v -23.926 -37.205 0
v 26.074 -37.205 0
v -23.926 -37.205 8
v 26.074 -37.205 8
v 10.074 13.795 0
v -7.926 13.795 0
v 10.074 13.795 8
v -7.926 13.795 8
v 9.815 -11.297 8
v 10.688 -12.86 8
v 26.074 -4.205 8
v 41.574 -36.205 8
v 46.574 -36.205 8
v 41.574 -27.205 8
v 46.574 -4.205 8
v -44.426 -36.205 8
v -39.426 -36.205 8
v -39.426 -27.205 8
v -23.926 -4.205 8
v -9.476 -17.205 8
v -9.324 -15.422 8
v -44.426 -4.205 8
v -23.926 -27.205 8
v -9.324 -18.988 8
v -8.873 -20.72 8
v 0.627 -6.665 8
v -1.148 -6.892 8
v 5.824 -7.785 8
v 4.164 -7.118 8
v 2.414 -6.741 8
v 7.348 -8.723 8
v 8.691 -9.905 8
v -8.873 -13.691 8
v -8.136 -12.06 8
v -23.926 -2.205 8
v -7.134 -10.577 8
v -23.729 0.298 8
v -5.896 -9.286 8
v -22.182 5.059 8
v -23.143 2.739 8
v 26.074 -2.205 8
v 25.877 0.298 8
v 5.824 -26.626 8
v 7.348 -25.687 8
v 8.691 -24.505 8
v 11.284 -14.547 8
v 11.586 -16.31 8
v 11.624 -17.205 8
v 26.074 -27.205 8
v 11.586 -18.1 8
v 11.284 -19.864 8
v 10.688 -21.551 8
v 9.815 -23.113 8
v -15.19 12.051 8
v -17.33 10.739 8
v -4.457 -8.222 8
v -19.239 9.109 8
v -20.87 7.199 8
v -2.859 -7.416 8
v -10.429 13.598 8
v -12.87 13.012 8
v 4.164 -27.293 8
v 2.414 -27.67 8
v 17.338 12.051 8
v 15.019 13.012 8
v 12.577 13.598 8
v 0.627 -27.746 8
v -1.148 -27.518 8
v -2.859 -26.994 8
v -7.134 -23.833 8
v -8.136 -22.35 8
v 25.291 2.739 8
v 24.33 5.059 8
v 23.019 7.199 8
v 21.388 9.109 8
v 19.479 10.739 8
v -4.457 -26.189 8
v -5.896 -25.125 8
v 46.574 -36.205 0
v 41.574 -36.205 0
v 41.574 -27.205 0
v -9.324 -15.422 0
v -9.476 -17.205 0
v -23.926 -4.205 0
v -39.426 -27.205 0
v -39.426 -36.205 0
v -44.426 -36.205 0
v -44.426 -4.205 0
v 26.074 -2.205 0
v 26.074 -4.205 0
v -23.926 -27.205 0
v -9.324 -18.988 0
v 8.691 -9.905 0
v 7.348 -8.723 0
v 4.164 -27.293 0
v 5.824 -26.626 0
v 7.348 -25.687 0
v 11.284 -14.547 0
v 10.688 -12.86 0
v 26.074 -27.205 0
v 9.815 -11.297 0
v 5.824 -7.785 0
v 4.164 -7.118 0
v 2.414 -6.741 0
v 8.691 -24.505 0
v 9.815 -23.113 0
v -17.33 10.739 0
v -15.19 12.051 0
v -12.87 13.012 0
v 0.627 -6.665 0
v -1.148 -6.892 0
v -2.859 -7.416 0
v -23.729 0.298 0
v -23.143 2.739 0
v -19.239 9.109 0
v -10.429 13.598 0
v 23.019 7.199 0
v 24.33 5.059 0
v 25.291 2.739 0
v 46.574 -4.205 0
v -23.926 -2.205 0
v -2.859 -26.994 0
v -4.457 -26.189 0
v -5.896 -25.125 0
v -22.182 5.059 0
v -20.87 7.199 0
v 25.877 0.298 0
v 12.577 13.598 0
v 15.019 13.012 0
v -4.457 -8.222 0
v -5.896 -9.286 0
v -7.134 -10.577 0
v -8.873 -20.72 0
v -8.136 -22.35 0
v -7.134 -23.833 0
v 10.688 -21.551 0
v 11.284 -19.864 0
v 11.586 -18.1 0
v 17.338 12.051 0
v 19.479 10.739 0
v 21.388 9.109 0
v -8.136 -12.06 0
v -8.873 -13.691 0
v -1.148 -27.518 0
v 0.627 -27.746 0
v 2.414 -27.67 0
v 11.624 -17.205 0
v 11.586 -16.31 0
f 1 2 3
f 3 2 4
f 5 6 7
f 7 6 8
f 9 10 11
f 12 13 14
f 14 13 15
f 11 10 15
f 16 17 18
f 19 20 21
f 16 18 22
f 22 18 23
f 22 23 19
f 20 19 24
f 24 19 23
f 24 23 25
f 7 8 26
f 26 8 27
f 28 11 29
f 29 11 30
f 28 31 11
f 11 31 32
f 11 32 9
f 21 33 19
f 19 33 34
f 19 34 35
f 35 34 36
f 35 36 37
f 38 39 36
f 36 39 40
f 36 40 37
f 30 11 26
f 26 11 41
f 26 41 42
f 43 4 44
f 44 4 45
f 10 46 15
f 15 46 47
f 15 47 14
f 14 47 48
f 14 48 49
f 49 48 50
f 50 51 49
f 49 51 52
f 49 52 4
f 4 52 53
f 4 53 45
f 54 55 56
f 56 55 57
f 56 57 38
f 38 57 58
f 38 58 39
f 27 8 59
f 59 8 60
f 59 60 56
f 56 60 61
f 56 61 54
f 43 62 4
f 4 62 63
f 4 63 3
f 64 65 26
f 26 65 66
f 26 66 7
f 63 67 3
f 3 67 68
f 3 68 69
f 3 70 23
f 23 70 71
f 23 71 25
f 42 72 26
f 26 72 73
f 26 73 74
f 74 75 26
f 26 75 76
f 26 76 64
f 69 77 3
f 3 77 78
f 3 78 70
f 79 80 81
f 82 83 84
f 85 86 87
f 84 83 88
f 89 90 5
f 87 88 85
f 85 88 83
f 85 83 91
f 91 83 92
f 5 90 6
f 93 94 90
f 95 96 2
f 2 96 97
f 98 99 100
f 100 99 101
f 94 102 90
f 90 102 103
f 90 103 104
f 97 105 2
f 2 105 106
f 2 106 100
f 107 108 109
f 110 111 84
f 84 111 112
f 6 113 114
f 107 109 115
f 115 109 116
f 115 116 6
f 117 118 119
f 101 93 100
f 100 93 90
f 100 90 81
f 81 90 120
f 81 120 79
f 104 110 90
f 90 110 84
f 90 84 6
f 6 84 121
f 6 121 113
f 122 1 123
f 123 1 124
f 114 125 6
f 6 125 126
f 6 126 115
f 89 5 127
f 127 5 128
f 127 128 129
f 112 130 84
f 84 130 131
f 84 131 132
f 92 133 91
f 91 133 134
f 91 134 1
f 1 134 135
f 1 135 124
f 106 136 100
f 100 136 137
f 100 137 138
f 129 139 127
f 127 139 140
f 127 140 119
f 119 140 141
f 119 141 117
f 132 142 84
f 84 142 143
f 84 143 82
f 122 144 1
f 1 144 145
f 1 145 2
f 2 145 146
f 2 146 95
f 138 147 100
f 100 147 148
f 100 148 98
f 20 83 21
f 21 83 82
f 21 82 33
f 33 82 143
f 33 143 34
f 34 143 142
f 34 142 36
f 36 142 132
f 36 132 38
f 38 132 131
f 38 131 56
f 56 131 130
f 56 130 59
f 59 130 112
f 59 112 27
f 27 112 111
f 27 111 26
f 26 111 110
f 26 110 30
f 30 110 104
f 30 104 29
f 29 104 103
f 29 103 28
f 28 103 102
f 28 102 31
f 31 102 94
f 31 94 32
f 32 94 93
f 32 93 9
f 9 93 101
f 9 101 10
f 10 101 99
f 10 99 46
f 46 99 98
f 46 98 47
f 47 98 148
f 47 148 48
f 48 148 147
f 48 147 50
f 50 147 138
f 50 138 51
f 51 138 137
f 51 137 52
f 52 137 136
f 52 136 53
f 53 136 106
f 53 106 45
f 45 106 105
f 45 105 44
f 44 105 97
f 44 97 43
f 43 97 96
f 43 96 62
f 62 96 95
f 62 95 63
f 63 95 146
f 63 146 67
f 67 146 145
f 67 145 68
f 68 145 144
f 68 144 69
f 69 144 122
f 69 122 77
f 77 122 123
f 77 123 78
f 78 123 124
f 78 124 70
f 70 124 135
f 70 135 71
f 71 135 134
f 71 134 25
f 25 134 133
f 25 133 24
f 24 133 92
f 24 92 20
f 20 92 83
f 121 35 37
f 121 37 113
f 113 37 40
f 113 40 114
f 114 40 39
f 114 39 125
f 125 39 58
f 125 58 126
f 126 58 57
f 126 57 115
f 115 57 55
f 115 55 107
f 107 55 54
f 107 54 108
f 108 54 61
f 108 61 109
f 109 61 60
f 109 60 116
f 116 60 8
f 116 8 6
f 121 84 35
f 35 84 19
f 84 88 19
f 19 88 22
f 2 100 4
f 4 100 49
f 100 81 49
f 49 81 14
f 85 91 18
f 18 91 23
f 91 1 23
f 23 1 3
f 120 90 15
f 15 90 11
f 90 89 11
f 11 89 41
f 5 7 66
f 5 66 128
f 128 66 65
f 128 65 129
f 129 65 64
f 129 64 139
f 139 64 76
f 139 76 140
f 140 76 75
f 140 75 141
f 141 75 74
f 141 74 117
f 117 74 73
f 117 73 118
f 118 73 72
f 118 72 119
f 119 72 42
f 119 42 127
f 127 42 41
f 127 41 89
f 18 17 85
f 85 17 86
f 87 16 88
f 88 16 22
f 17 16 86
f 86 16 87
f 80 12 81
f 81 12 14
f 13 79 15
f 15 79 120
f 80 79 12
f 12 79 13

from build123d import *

# Parameters (mm, degrees)
BOSS_EXTRUDE1_DEPTH = 8
SKETCH3_W           = 10
SKETCH3_H           = 10
CUT_EXTRUDE1_DEPTH  = 53.436444721
SKETCH5_W           = 5.5
SKETCH5_H           = 8
BOSS_EXTRUDE2_DEPTH = 23
SKETCH5_3_W         = 5
SKETCH5_3_H         = 8
BOSS_EXTRUDE3_DEPTH = 32
SKETCH5_5_W         = 5
SKETCH5_5_H         = 8
BOSS_EXTRUDE4_DEPTH = 32
SKETCH5_6_W         = 5.5
SKETCH5_6_H         = 8
BOSS_EXTRUDE5_DEPTH = 23


with BuildPart() as part:
    # Sketch2 → Boss-Extrude1 (new body)
    with BuildSketch(Plane.XY):
        Polygon((36.074313409, 13.794830372), (-33.925686591, 13.794830372), (-33.925686591, -37.205169628), (1.074313409, -37.205169628), (36.074313409, -37.205169628), align=None)
        with BuildLine():
            ThreePointArc((11.624313409, -17.205169628), (8.53428995, -24.66514617), (1.074313409, -27.755169628))
            ThreePointArc((1.074313409, -27.755169628), (-6.385663133, -9.745193087), (11.624313409, -17.205169628))
        make_face(mode=Mode.SUBTRACT)
    extrude(amount=BOSS_EXTRUDE1_DEPTH)

    # Sketch3 → Cut-Extrude1 (cut, through all)
    with BuildSketch(Plane.XY.offset(8)):
        with Locations((31.074313409, -32.205169628)):
            Rectangle(SKETCH3_W, SKETCH3_H)
        with Locations((-28.925686591, -32.205169628)):
            Rectangle(SKETCH3_W, SKETCH3_H)
        with BuildLine():
            ThreePointArc((-23.925686591, -2.205169628), (-19.23939509, 9.108538871), (-7.925686591, 13.794830372))
            Line((-7.925686591, 13.794830372), (-33.925686591, 13.794830372))
            Line((-33.925686591, 13.794830372), (-33.925686591, -4.205169628))
            Line((-33.925686591, -4.205169628), (-23.925686591, -4.205169628))
            Line((-23.925686591, -4.205169628), (-23.925686591, -2.205169628))
        make_face()
        with BuildLine():
            Line((26.074313409, -4.205169628), (36.074313409, -4.205169628))
            Line((36.074313409, -4.205169628), (36.074313409, 13.794830372))
            Line((36.074313409, 13.794830372), (10.074313409, 13.794830372))
            ThreePointArc((10.074313409, 13.794830372), (21.388021908, 9.108538871), (26.074313409, -2.205169628))
            Line((26.074313409, -2.205169628), (26.074313409, -4.205169628))
        make_face()
    extrude(amount=-CUT_EXTRUDE1_DEPTH, mode=Mode.SUBTRACT)

    # Sketch5 → Boss-Extrude2 (add)
    with BuildSketch(Plane(origin=(0, -4.205169628, 0), x_dir=(1, 0, 0), z_dir=(0, 1, 0))):
        with Locations((-36.675686591, -4)):
            Rectangle(SKETCH5_W, SKETCH5_H)
    extrude(amount=-BOSS_EXTRUDE2_DEPTH)

    # Sketch5<3> → Boss-Extrude3 (add)
    with BuildSketch(Plane(origin=(0, -4.205169628, 0), x_dir=(1, 0, 0), z_dir=(0, 1, 0))):
        with Locations((-41.925686591, -4)):
            Rectangle(SKETCH5_3_W, SKETCH5_3_H)
    extrude(amount=-BOSS_EXTRUDE3_DEPTH)



with BuildPart() as body_2:
    # Sketch5<5> → Boss-Extrude4 (new body)
    with BuildSketch(Plane(origin=(0, -4.205169628, 0), x_dir=(1, 0, 0), z_dir=(0, 1, 0))):
        with Locations((44.074313409, -4)):
            Rectangle(SKETCH5_5_W, SKETCH5_5_H)
    extrude(amount=-BOSS_EXTRUDE4_DEPTH)


with BuildPart() as part_1:
    add(part.part)

    add(body_2.part)  # Boss-Extrude5 merges body 2
    # Sketch5<6> → Boss-Extrude5 (add)
    with BuildSketch(Plane(origin=(0, -4.205169628, 0), x_dir=(1, 0, 0), z_dir=(0, 1, 0))):
        with Locations((38.824313409, -4)):
            Rectangle(SKETCH5_6_W, SKETCH5_6_H)
    extrude(amount=-BOSS_EXTRUDE5_DEPTH)


solid = part_1.part
